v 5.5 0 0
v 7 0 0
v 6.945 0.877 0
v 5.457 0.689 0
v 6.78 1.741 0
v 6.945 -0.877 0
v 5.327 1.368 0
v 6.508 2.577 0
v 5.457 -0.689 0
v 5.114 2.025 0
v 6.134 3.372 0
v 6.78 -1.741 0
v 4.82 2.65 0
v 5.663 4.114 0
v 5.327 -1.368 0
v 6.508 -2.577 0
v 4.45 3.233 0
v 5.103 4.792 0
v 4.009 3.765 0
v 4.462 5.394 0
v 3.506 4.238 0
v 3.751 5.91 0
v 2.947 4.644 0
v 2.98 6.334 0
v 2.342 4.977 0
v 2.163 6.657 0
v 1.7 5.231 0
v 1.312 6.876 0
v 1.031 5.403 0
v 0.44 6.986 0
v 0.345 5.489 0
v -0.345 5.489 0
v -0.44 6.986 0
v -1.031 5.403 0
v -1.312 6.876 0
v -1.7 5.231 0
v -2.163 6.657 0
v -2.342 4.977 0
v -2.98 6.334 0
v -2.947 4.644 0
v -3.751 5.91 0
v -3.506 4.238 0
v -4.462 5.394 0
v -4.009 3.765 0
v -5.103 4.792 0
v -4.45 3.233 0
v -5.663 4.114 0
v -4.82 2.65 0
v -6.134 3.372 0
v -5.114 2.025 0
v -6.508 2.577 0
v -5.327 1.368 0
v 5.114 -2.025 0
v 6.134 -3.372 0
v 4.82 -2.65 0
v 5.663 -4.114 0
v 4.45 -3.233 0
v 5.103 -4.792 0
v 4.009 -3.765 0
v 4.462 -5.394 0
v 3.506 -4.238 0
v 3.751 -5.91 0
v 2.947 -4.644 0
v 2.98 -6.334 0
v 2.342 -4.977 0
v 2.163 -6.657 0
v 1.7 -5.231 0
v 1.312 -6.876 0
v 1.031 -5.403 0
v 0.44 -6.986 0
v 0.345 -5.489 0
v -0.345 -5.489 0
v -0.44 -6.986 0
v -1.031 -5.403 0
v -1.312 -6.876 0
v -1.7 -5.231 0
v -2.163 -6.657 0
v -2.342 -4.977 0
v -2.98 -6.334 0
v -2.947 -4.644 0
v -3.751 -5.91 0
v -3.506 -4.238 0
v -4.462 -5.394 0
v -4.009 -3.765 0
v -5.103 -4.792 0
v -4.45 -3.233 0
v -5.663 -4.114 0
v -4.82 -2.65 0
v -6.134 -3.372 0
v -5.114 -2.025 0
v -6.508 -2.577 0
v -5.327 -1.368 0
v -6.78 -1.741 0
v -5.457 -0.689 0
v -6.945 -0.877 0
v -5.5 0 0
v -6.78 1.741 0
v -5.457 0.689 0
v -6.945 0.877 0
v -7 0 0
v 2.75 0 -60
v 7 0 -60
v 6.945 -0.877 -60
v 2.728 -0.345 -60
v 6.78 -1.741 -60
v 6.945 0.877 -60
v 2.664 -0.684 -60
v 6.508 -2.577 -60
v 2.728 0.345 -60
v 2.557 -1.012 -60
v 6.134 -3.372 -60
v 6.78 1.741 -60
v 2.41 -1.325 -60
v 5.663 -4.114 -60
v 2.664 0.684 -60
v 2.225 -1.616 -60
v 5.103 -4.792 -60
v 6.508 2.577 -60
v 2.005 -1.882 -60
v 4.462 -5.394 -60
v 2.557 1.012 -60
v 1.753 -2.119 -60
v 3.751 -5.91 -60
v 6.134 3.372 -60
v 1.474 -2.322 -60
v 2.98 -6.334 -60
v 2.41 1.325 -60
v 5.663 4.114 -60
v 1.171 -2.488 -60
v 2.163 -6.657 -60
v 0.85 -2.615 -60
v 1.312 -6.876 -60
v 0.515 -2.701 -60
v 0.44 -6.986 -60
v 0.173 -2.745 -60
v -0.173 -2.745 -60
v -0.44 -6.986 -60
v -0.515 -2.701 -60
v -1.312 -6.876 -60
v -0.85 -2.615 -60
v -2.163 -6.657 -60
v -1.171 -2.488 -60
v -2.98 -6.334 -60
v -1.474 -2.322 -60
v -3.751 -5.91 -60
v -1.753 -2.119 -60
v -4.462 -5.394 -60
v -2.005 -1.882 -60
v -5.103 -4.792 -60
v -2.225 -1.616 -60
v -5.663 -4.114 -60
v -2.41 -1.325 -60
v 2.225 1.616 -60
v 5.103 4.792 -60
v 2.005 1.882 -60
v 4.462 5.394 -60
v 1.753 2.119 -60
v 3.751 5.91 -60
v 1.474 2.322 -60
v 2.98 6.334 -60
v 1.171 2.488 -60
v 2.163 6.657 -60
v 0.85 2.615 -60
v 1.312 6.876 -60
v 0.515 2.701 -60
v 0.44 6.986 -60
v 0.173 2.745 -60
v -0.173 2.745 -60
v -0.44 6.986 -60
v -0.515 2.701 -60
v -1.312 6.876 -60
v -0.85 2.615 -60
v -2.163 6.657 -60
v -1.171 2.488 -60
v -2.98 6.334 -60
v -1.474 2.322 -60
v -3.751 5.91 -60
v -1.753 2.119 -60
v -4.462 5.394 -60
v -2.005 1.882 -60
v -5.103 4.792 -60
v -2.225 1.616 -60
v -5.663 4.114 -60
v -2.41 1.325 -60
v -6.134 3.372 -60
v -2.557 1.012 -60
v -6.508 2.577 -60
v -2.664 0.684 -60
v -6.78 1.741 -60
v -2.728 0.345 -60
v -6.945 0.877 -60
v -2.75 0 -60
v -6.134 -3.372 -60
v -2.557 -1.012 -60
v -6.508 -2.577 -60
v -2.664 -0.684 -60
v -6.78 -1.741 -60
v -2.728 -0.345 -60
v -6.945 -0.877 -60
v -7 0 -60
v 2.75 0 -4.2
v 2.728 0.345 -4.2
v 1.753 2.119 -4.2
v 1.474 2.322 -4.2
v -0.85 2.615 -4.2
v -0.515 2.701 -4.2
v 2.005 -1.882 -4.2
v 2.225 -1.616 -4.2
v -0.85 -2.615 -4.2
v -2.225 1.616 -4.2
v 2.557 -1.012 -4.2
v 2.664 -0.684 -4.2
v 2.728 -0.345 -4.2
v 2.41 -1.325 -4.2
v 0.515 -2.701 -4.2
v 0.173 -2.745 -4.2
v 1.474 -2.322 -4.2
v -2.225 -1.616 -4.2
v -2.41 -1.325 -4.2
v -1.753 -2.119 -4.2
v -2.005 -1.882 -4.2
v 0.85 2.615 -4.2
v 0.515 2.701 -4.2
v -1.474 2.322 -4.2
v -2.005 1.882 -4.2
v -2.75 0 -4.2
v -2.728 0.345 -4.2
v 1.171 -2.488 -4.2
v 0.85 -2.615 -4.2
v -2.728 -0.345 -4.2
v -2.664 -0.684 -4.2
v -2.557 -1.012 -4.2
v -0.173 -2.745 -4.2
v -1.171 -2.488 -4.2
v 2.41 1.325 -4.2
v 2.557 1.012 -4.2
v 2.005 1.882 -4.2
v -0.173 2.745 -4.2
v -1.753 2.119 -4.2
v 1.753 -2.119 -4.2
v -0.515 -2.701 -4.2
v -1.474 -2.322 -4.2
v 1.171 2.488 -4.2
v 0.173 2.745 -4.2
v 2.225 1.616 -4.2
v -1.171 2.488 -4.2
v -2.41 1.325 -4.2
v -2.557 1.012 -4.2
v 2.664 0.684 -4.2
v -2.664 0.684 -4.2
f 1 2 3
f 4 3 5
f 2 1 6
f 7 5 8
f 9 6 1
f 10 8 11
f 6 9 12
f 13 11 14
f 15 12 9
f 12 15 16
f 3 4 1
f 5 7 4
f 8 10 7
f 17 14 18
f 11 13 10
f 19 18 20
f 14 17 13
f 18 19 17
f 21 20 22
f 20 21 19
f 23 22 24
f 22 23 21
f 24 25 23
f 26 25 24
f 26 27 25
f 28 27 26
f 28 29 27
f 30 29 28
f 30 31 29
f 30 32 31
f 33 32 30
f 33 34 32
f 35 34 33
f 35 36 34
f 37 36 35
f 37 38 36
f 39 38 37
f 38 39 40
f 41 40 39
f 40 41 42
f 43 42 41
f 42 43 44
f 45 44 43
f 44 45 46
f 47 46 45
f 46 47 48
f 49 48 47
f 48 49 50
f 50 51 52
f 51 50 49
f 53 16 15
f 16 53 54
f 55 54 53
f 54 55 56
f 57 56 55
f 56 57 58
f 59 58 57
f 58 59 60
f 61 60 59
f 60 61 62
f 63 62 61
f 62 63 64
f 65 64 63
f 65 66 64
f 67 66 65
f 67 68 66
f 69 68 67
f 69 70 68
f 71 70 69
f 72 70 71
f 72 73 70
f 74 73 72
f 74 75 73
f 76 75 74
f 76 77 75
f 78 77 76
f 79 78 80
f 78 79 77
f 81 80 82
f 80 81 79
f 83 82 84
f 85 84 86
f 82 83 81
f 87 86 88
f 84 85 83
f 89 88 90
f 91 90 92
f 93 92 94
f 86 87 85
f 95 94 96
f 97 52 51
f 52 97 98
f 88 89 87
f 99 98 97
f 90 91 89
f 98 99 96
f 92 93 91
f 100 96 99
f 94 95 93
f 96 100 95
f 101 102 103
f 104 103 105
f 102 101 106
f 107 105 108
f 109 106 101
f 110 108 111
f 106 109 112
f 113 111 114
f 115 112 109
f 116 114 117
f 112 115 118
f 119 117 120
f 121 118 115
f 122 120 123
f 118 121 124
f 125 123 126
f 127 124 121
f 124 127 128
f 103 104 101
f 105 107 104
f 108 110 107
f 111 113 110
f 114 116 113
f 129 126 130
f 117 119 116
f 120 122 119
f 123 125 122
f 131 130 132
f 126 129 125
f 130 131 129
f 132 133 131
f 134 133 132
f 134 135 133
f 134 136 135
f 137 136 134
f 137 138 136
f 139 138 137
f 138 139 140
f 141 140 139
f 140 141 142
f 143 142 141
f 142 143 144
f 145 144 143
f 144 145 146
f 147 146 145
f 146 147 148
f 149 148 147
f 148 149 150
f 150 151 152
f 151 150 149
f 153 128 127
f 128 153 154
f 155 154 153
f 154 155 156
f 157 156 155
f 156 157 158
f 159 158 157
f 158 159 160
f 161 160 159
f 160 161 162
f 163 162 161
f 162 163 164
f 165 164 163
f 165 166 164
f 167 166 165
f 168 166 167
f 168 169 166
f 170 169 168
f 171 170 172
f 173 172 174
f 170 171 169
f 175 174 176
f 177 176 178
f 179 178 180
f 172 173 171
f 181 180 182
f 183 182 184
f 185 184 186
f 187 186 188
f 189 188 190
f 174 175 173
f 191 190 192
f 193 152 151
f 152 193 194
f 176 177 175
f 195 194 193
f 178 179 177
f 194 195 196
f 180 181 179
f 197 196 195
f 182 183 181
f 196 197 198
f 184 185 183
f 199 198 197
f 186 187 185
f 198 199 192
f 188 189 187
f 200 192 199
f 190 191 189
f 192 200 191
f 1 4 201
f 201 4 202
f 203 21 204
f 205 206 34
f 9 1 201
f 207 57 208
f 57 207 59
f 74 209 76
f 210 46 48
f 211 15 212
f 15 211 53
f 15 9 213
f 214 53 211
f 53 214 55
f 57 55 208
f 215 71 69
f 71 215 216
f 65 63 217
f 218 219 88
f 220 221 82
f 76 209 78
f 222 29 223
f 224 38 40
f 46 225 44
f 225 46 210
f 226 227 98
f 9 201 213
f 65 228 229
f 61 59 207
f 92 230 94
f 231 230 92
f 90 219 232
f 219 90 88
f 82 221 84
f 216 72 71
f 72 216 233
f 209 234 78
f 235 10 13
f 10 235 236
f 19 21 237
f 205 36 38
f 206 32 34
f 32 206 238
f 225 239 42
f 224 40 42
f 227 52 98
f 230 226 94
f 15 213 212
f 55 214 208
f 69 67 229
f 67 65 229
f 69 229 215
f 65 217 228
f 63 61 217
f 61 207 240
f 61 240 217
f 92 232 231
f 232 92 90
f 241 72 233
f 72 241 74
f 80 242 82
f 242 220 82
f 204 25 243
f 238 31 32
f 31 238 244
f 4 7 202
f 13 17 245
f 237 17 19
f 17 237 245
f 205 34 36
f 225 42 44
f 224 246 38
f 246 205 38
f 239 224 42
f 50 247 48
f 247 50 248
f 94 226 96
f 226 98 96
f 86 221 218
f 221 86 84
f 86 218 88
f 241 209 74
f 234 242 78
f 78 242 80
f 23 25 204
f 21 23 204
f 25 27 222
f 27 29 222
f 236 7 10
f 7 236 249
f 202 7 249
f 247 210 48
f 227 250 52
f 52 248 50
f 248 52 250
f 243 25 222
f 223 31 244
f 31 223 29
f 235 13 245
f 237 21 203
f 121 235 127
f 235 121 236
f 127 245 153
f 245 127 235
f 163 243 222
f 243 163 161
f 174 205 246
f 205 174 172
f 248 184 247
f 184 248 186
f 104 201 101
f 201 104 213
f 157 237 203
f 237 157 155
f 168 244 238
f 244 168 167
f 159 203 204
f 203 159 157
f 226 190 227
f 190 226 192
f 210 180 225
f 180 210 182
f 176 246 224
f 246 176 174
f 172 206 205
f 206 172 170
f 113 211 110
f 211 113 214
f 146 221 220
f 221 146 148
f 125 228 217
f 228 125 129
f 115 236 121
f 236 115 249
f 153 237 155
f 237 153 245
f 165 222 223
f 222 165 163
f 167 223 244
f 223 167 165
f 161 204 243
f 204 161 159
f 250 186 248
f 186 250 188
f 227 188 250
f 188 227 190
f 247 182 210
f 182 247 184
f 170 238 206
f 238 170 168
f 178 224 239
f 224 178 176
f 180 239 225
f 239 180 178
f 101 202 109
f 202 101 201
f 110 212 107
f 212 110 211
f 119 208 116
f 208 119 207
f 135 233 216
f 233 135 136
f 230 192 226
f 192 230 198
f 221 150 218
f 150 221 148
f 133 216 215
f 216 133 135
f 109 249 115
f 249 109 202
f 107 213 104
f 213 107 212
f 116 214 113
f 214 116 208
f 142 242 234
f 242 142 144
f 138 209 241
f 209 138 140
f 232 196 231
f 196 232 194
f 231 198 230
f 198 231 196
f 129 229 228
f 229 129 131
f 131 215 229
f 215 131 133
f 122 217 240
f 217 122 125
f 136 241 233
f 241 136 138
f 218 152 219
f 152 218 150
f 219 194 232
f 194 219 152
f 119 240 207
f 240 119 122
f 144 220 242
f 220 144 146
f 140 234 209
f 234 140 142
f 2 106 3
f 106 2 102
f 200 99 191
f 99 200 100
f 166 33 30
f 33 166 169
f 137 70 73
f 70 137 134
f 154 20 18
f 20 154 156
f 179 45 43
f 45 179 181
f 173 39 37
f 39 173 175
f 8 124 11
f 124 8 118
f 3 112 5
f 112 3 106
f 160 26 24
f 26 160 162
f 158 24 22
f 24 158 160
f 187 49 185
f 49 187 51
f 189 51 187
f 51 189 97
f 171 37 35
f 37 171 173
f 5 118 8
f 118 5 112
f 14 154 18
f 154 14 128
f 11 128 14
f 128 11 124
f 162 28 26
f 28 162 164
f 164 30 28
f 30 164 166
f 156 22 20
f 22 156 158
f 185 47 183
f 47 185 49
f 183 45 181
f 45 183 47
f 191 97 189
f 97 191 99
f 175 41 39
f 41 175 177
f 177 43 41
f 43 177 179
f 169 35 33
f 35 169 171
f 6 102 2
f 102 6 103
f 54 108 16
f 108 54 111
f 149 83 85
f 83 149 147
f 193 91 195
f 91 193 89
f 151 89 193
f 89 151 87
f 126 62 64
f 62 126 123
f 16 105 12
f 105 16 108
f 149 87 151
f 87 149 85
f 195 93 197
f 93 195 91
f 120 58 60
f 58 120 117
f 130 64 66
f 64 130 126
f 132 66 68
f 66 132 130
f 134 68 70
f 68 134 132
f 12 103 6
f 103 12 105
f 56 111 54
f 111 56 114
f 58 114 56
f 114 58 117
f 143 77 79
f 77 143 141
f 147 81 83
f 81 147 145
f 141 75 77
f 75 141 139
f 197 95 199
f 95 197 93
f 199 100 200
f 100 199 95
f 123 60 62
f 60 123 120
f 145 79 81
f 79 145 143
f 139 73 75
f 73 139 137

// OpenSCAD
$fn = 50;


difference() {
	union() {
		translate(v = [0, 0, -60.0000000000]) {
			cylinder(h = 60, r = 7.0000000000);
		}
		cylinder(h = 0, r = 13.0000000000);
	}
	union() {
		translate(v = [0, 0, 0]) {
			rotate(a = [0, 0, 0]) {
				difference() {
					union() {
						#translate(v = [0, 0, -60.0000000000]) {
							cylinder(h = 60, r = 2.2500000000);
						}
						#translate(v = [0, 0, -4.2000000000]) {
							cylinder(h = 4.2000000000, r1 = 2.7500000000, r2 = 5.5000000000);
						}
						#translate(v = [0, 0, -60.0000000000]) {
							cylinder(h = 60, r = 2.7500000000);
						}
						#translate(v = [0, 0, -60.0000000000]) {
							cylinder(h = 60, r = 2.2500000000);
						}
					}
					union();
				}
			}
		}
	}
}
